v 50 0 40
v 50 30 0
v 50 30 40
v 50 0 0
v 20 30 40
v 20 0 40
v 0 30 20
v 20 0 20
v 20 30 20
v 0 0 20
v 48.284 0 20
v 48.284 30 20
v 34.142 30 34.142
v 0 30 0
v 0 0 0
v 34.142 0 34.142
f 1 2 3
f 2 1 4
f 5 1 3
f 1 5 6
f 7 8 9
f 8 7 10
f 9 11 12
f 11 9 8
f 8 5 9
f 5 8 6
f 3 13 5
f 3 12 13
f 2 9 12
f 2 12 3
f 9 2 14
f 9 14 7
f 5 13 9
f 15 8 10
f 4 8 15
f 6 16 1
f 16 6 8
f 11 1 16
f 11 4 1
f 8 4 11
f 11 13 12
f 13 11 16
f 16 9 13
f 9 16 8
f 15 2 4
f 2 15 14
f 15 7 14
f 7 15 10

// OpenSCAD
// Base block dimensions
base_length = 50;  // Length of the base block
base_width = 30;   // Width of the base block
base_height = 20;  // Height of the base block

// Slanted block dimensions
slanted_length = 30;  // Length of the slanted block
slanted_width = 30;   // Width of the slanted block
slanted_height = 20;  // Height of the slanted block
slant_angle = 45;     // Angle of the slanted face

// Base block
module base_block() {
    cube([base_length, base_width, base_height]);
}

// Slanted block
module slanted_block() {
    difference() {
        cube([slanted_length, slanted_width, slanted_height]);
        translate([0, 0, 0]) {
            rotate([0, slant_angle, 0]) {
                translate([0, -slanted_width, 0]) {
                    cube([slanted_length, slanted_width * 2, slanted_height]);
                }
            }
        }
    }
}

// Assemble the model
module flexible_coupling() {
    // Base block
    base_block();

    // Slanted block positioned on top of the base block
    translate([base_length - slanted_length, 0, base_height]) {
        slanted_block();
    }
}

// Render the model
flexible_coupling();
